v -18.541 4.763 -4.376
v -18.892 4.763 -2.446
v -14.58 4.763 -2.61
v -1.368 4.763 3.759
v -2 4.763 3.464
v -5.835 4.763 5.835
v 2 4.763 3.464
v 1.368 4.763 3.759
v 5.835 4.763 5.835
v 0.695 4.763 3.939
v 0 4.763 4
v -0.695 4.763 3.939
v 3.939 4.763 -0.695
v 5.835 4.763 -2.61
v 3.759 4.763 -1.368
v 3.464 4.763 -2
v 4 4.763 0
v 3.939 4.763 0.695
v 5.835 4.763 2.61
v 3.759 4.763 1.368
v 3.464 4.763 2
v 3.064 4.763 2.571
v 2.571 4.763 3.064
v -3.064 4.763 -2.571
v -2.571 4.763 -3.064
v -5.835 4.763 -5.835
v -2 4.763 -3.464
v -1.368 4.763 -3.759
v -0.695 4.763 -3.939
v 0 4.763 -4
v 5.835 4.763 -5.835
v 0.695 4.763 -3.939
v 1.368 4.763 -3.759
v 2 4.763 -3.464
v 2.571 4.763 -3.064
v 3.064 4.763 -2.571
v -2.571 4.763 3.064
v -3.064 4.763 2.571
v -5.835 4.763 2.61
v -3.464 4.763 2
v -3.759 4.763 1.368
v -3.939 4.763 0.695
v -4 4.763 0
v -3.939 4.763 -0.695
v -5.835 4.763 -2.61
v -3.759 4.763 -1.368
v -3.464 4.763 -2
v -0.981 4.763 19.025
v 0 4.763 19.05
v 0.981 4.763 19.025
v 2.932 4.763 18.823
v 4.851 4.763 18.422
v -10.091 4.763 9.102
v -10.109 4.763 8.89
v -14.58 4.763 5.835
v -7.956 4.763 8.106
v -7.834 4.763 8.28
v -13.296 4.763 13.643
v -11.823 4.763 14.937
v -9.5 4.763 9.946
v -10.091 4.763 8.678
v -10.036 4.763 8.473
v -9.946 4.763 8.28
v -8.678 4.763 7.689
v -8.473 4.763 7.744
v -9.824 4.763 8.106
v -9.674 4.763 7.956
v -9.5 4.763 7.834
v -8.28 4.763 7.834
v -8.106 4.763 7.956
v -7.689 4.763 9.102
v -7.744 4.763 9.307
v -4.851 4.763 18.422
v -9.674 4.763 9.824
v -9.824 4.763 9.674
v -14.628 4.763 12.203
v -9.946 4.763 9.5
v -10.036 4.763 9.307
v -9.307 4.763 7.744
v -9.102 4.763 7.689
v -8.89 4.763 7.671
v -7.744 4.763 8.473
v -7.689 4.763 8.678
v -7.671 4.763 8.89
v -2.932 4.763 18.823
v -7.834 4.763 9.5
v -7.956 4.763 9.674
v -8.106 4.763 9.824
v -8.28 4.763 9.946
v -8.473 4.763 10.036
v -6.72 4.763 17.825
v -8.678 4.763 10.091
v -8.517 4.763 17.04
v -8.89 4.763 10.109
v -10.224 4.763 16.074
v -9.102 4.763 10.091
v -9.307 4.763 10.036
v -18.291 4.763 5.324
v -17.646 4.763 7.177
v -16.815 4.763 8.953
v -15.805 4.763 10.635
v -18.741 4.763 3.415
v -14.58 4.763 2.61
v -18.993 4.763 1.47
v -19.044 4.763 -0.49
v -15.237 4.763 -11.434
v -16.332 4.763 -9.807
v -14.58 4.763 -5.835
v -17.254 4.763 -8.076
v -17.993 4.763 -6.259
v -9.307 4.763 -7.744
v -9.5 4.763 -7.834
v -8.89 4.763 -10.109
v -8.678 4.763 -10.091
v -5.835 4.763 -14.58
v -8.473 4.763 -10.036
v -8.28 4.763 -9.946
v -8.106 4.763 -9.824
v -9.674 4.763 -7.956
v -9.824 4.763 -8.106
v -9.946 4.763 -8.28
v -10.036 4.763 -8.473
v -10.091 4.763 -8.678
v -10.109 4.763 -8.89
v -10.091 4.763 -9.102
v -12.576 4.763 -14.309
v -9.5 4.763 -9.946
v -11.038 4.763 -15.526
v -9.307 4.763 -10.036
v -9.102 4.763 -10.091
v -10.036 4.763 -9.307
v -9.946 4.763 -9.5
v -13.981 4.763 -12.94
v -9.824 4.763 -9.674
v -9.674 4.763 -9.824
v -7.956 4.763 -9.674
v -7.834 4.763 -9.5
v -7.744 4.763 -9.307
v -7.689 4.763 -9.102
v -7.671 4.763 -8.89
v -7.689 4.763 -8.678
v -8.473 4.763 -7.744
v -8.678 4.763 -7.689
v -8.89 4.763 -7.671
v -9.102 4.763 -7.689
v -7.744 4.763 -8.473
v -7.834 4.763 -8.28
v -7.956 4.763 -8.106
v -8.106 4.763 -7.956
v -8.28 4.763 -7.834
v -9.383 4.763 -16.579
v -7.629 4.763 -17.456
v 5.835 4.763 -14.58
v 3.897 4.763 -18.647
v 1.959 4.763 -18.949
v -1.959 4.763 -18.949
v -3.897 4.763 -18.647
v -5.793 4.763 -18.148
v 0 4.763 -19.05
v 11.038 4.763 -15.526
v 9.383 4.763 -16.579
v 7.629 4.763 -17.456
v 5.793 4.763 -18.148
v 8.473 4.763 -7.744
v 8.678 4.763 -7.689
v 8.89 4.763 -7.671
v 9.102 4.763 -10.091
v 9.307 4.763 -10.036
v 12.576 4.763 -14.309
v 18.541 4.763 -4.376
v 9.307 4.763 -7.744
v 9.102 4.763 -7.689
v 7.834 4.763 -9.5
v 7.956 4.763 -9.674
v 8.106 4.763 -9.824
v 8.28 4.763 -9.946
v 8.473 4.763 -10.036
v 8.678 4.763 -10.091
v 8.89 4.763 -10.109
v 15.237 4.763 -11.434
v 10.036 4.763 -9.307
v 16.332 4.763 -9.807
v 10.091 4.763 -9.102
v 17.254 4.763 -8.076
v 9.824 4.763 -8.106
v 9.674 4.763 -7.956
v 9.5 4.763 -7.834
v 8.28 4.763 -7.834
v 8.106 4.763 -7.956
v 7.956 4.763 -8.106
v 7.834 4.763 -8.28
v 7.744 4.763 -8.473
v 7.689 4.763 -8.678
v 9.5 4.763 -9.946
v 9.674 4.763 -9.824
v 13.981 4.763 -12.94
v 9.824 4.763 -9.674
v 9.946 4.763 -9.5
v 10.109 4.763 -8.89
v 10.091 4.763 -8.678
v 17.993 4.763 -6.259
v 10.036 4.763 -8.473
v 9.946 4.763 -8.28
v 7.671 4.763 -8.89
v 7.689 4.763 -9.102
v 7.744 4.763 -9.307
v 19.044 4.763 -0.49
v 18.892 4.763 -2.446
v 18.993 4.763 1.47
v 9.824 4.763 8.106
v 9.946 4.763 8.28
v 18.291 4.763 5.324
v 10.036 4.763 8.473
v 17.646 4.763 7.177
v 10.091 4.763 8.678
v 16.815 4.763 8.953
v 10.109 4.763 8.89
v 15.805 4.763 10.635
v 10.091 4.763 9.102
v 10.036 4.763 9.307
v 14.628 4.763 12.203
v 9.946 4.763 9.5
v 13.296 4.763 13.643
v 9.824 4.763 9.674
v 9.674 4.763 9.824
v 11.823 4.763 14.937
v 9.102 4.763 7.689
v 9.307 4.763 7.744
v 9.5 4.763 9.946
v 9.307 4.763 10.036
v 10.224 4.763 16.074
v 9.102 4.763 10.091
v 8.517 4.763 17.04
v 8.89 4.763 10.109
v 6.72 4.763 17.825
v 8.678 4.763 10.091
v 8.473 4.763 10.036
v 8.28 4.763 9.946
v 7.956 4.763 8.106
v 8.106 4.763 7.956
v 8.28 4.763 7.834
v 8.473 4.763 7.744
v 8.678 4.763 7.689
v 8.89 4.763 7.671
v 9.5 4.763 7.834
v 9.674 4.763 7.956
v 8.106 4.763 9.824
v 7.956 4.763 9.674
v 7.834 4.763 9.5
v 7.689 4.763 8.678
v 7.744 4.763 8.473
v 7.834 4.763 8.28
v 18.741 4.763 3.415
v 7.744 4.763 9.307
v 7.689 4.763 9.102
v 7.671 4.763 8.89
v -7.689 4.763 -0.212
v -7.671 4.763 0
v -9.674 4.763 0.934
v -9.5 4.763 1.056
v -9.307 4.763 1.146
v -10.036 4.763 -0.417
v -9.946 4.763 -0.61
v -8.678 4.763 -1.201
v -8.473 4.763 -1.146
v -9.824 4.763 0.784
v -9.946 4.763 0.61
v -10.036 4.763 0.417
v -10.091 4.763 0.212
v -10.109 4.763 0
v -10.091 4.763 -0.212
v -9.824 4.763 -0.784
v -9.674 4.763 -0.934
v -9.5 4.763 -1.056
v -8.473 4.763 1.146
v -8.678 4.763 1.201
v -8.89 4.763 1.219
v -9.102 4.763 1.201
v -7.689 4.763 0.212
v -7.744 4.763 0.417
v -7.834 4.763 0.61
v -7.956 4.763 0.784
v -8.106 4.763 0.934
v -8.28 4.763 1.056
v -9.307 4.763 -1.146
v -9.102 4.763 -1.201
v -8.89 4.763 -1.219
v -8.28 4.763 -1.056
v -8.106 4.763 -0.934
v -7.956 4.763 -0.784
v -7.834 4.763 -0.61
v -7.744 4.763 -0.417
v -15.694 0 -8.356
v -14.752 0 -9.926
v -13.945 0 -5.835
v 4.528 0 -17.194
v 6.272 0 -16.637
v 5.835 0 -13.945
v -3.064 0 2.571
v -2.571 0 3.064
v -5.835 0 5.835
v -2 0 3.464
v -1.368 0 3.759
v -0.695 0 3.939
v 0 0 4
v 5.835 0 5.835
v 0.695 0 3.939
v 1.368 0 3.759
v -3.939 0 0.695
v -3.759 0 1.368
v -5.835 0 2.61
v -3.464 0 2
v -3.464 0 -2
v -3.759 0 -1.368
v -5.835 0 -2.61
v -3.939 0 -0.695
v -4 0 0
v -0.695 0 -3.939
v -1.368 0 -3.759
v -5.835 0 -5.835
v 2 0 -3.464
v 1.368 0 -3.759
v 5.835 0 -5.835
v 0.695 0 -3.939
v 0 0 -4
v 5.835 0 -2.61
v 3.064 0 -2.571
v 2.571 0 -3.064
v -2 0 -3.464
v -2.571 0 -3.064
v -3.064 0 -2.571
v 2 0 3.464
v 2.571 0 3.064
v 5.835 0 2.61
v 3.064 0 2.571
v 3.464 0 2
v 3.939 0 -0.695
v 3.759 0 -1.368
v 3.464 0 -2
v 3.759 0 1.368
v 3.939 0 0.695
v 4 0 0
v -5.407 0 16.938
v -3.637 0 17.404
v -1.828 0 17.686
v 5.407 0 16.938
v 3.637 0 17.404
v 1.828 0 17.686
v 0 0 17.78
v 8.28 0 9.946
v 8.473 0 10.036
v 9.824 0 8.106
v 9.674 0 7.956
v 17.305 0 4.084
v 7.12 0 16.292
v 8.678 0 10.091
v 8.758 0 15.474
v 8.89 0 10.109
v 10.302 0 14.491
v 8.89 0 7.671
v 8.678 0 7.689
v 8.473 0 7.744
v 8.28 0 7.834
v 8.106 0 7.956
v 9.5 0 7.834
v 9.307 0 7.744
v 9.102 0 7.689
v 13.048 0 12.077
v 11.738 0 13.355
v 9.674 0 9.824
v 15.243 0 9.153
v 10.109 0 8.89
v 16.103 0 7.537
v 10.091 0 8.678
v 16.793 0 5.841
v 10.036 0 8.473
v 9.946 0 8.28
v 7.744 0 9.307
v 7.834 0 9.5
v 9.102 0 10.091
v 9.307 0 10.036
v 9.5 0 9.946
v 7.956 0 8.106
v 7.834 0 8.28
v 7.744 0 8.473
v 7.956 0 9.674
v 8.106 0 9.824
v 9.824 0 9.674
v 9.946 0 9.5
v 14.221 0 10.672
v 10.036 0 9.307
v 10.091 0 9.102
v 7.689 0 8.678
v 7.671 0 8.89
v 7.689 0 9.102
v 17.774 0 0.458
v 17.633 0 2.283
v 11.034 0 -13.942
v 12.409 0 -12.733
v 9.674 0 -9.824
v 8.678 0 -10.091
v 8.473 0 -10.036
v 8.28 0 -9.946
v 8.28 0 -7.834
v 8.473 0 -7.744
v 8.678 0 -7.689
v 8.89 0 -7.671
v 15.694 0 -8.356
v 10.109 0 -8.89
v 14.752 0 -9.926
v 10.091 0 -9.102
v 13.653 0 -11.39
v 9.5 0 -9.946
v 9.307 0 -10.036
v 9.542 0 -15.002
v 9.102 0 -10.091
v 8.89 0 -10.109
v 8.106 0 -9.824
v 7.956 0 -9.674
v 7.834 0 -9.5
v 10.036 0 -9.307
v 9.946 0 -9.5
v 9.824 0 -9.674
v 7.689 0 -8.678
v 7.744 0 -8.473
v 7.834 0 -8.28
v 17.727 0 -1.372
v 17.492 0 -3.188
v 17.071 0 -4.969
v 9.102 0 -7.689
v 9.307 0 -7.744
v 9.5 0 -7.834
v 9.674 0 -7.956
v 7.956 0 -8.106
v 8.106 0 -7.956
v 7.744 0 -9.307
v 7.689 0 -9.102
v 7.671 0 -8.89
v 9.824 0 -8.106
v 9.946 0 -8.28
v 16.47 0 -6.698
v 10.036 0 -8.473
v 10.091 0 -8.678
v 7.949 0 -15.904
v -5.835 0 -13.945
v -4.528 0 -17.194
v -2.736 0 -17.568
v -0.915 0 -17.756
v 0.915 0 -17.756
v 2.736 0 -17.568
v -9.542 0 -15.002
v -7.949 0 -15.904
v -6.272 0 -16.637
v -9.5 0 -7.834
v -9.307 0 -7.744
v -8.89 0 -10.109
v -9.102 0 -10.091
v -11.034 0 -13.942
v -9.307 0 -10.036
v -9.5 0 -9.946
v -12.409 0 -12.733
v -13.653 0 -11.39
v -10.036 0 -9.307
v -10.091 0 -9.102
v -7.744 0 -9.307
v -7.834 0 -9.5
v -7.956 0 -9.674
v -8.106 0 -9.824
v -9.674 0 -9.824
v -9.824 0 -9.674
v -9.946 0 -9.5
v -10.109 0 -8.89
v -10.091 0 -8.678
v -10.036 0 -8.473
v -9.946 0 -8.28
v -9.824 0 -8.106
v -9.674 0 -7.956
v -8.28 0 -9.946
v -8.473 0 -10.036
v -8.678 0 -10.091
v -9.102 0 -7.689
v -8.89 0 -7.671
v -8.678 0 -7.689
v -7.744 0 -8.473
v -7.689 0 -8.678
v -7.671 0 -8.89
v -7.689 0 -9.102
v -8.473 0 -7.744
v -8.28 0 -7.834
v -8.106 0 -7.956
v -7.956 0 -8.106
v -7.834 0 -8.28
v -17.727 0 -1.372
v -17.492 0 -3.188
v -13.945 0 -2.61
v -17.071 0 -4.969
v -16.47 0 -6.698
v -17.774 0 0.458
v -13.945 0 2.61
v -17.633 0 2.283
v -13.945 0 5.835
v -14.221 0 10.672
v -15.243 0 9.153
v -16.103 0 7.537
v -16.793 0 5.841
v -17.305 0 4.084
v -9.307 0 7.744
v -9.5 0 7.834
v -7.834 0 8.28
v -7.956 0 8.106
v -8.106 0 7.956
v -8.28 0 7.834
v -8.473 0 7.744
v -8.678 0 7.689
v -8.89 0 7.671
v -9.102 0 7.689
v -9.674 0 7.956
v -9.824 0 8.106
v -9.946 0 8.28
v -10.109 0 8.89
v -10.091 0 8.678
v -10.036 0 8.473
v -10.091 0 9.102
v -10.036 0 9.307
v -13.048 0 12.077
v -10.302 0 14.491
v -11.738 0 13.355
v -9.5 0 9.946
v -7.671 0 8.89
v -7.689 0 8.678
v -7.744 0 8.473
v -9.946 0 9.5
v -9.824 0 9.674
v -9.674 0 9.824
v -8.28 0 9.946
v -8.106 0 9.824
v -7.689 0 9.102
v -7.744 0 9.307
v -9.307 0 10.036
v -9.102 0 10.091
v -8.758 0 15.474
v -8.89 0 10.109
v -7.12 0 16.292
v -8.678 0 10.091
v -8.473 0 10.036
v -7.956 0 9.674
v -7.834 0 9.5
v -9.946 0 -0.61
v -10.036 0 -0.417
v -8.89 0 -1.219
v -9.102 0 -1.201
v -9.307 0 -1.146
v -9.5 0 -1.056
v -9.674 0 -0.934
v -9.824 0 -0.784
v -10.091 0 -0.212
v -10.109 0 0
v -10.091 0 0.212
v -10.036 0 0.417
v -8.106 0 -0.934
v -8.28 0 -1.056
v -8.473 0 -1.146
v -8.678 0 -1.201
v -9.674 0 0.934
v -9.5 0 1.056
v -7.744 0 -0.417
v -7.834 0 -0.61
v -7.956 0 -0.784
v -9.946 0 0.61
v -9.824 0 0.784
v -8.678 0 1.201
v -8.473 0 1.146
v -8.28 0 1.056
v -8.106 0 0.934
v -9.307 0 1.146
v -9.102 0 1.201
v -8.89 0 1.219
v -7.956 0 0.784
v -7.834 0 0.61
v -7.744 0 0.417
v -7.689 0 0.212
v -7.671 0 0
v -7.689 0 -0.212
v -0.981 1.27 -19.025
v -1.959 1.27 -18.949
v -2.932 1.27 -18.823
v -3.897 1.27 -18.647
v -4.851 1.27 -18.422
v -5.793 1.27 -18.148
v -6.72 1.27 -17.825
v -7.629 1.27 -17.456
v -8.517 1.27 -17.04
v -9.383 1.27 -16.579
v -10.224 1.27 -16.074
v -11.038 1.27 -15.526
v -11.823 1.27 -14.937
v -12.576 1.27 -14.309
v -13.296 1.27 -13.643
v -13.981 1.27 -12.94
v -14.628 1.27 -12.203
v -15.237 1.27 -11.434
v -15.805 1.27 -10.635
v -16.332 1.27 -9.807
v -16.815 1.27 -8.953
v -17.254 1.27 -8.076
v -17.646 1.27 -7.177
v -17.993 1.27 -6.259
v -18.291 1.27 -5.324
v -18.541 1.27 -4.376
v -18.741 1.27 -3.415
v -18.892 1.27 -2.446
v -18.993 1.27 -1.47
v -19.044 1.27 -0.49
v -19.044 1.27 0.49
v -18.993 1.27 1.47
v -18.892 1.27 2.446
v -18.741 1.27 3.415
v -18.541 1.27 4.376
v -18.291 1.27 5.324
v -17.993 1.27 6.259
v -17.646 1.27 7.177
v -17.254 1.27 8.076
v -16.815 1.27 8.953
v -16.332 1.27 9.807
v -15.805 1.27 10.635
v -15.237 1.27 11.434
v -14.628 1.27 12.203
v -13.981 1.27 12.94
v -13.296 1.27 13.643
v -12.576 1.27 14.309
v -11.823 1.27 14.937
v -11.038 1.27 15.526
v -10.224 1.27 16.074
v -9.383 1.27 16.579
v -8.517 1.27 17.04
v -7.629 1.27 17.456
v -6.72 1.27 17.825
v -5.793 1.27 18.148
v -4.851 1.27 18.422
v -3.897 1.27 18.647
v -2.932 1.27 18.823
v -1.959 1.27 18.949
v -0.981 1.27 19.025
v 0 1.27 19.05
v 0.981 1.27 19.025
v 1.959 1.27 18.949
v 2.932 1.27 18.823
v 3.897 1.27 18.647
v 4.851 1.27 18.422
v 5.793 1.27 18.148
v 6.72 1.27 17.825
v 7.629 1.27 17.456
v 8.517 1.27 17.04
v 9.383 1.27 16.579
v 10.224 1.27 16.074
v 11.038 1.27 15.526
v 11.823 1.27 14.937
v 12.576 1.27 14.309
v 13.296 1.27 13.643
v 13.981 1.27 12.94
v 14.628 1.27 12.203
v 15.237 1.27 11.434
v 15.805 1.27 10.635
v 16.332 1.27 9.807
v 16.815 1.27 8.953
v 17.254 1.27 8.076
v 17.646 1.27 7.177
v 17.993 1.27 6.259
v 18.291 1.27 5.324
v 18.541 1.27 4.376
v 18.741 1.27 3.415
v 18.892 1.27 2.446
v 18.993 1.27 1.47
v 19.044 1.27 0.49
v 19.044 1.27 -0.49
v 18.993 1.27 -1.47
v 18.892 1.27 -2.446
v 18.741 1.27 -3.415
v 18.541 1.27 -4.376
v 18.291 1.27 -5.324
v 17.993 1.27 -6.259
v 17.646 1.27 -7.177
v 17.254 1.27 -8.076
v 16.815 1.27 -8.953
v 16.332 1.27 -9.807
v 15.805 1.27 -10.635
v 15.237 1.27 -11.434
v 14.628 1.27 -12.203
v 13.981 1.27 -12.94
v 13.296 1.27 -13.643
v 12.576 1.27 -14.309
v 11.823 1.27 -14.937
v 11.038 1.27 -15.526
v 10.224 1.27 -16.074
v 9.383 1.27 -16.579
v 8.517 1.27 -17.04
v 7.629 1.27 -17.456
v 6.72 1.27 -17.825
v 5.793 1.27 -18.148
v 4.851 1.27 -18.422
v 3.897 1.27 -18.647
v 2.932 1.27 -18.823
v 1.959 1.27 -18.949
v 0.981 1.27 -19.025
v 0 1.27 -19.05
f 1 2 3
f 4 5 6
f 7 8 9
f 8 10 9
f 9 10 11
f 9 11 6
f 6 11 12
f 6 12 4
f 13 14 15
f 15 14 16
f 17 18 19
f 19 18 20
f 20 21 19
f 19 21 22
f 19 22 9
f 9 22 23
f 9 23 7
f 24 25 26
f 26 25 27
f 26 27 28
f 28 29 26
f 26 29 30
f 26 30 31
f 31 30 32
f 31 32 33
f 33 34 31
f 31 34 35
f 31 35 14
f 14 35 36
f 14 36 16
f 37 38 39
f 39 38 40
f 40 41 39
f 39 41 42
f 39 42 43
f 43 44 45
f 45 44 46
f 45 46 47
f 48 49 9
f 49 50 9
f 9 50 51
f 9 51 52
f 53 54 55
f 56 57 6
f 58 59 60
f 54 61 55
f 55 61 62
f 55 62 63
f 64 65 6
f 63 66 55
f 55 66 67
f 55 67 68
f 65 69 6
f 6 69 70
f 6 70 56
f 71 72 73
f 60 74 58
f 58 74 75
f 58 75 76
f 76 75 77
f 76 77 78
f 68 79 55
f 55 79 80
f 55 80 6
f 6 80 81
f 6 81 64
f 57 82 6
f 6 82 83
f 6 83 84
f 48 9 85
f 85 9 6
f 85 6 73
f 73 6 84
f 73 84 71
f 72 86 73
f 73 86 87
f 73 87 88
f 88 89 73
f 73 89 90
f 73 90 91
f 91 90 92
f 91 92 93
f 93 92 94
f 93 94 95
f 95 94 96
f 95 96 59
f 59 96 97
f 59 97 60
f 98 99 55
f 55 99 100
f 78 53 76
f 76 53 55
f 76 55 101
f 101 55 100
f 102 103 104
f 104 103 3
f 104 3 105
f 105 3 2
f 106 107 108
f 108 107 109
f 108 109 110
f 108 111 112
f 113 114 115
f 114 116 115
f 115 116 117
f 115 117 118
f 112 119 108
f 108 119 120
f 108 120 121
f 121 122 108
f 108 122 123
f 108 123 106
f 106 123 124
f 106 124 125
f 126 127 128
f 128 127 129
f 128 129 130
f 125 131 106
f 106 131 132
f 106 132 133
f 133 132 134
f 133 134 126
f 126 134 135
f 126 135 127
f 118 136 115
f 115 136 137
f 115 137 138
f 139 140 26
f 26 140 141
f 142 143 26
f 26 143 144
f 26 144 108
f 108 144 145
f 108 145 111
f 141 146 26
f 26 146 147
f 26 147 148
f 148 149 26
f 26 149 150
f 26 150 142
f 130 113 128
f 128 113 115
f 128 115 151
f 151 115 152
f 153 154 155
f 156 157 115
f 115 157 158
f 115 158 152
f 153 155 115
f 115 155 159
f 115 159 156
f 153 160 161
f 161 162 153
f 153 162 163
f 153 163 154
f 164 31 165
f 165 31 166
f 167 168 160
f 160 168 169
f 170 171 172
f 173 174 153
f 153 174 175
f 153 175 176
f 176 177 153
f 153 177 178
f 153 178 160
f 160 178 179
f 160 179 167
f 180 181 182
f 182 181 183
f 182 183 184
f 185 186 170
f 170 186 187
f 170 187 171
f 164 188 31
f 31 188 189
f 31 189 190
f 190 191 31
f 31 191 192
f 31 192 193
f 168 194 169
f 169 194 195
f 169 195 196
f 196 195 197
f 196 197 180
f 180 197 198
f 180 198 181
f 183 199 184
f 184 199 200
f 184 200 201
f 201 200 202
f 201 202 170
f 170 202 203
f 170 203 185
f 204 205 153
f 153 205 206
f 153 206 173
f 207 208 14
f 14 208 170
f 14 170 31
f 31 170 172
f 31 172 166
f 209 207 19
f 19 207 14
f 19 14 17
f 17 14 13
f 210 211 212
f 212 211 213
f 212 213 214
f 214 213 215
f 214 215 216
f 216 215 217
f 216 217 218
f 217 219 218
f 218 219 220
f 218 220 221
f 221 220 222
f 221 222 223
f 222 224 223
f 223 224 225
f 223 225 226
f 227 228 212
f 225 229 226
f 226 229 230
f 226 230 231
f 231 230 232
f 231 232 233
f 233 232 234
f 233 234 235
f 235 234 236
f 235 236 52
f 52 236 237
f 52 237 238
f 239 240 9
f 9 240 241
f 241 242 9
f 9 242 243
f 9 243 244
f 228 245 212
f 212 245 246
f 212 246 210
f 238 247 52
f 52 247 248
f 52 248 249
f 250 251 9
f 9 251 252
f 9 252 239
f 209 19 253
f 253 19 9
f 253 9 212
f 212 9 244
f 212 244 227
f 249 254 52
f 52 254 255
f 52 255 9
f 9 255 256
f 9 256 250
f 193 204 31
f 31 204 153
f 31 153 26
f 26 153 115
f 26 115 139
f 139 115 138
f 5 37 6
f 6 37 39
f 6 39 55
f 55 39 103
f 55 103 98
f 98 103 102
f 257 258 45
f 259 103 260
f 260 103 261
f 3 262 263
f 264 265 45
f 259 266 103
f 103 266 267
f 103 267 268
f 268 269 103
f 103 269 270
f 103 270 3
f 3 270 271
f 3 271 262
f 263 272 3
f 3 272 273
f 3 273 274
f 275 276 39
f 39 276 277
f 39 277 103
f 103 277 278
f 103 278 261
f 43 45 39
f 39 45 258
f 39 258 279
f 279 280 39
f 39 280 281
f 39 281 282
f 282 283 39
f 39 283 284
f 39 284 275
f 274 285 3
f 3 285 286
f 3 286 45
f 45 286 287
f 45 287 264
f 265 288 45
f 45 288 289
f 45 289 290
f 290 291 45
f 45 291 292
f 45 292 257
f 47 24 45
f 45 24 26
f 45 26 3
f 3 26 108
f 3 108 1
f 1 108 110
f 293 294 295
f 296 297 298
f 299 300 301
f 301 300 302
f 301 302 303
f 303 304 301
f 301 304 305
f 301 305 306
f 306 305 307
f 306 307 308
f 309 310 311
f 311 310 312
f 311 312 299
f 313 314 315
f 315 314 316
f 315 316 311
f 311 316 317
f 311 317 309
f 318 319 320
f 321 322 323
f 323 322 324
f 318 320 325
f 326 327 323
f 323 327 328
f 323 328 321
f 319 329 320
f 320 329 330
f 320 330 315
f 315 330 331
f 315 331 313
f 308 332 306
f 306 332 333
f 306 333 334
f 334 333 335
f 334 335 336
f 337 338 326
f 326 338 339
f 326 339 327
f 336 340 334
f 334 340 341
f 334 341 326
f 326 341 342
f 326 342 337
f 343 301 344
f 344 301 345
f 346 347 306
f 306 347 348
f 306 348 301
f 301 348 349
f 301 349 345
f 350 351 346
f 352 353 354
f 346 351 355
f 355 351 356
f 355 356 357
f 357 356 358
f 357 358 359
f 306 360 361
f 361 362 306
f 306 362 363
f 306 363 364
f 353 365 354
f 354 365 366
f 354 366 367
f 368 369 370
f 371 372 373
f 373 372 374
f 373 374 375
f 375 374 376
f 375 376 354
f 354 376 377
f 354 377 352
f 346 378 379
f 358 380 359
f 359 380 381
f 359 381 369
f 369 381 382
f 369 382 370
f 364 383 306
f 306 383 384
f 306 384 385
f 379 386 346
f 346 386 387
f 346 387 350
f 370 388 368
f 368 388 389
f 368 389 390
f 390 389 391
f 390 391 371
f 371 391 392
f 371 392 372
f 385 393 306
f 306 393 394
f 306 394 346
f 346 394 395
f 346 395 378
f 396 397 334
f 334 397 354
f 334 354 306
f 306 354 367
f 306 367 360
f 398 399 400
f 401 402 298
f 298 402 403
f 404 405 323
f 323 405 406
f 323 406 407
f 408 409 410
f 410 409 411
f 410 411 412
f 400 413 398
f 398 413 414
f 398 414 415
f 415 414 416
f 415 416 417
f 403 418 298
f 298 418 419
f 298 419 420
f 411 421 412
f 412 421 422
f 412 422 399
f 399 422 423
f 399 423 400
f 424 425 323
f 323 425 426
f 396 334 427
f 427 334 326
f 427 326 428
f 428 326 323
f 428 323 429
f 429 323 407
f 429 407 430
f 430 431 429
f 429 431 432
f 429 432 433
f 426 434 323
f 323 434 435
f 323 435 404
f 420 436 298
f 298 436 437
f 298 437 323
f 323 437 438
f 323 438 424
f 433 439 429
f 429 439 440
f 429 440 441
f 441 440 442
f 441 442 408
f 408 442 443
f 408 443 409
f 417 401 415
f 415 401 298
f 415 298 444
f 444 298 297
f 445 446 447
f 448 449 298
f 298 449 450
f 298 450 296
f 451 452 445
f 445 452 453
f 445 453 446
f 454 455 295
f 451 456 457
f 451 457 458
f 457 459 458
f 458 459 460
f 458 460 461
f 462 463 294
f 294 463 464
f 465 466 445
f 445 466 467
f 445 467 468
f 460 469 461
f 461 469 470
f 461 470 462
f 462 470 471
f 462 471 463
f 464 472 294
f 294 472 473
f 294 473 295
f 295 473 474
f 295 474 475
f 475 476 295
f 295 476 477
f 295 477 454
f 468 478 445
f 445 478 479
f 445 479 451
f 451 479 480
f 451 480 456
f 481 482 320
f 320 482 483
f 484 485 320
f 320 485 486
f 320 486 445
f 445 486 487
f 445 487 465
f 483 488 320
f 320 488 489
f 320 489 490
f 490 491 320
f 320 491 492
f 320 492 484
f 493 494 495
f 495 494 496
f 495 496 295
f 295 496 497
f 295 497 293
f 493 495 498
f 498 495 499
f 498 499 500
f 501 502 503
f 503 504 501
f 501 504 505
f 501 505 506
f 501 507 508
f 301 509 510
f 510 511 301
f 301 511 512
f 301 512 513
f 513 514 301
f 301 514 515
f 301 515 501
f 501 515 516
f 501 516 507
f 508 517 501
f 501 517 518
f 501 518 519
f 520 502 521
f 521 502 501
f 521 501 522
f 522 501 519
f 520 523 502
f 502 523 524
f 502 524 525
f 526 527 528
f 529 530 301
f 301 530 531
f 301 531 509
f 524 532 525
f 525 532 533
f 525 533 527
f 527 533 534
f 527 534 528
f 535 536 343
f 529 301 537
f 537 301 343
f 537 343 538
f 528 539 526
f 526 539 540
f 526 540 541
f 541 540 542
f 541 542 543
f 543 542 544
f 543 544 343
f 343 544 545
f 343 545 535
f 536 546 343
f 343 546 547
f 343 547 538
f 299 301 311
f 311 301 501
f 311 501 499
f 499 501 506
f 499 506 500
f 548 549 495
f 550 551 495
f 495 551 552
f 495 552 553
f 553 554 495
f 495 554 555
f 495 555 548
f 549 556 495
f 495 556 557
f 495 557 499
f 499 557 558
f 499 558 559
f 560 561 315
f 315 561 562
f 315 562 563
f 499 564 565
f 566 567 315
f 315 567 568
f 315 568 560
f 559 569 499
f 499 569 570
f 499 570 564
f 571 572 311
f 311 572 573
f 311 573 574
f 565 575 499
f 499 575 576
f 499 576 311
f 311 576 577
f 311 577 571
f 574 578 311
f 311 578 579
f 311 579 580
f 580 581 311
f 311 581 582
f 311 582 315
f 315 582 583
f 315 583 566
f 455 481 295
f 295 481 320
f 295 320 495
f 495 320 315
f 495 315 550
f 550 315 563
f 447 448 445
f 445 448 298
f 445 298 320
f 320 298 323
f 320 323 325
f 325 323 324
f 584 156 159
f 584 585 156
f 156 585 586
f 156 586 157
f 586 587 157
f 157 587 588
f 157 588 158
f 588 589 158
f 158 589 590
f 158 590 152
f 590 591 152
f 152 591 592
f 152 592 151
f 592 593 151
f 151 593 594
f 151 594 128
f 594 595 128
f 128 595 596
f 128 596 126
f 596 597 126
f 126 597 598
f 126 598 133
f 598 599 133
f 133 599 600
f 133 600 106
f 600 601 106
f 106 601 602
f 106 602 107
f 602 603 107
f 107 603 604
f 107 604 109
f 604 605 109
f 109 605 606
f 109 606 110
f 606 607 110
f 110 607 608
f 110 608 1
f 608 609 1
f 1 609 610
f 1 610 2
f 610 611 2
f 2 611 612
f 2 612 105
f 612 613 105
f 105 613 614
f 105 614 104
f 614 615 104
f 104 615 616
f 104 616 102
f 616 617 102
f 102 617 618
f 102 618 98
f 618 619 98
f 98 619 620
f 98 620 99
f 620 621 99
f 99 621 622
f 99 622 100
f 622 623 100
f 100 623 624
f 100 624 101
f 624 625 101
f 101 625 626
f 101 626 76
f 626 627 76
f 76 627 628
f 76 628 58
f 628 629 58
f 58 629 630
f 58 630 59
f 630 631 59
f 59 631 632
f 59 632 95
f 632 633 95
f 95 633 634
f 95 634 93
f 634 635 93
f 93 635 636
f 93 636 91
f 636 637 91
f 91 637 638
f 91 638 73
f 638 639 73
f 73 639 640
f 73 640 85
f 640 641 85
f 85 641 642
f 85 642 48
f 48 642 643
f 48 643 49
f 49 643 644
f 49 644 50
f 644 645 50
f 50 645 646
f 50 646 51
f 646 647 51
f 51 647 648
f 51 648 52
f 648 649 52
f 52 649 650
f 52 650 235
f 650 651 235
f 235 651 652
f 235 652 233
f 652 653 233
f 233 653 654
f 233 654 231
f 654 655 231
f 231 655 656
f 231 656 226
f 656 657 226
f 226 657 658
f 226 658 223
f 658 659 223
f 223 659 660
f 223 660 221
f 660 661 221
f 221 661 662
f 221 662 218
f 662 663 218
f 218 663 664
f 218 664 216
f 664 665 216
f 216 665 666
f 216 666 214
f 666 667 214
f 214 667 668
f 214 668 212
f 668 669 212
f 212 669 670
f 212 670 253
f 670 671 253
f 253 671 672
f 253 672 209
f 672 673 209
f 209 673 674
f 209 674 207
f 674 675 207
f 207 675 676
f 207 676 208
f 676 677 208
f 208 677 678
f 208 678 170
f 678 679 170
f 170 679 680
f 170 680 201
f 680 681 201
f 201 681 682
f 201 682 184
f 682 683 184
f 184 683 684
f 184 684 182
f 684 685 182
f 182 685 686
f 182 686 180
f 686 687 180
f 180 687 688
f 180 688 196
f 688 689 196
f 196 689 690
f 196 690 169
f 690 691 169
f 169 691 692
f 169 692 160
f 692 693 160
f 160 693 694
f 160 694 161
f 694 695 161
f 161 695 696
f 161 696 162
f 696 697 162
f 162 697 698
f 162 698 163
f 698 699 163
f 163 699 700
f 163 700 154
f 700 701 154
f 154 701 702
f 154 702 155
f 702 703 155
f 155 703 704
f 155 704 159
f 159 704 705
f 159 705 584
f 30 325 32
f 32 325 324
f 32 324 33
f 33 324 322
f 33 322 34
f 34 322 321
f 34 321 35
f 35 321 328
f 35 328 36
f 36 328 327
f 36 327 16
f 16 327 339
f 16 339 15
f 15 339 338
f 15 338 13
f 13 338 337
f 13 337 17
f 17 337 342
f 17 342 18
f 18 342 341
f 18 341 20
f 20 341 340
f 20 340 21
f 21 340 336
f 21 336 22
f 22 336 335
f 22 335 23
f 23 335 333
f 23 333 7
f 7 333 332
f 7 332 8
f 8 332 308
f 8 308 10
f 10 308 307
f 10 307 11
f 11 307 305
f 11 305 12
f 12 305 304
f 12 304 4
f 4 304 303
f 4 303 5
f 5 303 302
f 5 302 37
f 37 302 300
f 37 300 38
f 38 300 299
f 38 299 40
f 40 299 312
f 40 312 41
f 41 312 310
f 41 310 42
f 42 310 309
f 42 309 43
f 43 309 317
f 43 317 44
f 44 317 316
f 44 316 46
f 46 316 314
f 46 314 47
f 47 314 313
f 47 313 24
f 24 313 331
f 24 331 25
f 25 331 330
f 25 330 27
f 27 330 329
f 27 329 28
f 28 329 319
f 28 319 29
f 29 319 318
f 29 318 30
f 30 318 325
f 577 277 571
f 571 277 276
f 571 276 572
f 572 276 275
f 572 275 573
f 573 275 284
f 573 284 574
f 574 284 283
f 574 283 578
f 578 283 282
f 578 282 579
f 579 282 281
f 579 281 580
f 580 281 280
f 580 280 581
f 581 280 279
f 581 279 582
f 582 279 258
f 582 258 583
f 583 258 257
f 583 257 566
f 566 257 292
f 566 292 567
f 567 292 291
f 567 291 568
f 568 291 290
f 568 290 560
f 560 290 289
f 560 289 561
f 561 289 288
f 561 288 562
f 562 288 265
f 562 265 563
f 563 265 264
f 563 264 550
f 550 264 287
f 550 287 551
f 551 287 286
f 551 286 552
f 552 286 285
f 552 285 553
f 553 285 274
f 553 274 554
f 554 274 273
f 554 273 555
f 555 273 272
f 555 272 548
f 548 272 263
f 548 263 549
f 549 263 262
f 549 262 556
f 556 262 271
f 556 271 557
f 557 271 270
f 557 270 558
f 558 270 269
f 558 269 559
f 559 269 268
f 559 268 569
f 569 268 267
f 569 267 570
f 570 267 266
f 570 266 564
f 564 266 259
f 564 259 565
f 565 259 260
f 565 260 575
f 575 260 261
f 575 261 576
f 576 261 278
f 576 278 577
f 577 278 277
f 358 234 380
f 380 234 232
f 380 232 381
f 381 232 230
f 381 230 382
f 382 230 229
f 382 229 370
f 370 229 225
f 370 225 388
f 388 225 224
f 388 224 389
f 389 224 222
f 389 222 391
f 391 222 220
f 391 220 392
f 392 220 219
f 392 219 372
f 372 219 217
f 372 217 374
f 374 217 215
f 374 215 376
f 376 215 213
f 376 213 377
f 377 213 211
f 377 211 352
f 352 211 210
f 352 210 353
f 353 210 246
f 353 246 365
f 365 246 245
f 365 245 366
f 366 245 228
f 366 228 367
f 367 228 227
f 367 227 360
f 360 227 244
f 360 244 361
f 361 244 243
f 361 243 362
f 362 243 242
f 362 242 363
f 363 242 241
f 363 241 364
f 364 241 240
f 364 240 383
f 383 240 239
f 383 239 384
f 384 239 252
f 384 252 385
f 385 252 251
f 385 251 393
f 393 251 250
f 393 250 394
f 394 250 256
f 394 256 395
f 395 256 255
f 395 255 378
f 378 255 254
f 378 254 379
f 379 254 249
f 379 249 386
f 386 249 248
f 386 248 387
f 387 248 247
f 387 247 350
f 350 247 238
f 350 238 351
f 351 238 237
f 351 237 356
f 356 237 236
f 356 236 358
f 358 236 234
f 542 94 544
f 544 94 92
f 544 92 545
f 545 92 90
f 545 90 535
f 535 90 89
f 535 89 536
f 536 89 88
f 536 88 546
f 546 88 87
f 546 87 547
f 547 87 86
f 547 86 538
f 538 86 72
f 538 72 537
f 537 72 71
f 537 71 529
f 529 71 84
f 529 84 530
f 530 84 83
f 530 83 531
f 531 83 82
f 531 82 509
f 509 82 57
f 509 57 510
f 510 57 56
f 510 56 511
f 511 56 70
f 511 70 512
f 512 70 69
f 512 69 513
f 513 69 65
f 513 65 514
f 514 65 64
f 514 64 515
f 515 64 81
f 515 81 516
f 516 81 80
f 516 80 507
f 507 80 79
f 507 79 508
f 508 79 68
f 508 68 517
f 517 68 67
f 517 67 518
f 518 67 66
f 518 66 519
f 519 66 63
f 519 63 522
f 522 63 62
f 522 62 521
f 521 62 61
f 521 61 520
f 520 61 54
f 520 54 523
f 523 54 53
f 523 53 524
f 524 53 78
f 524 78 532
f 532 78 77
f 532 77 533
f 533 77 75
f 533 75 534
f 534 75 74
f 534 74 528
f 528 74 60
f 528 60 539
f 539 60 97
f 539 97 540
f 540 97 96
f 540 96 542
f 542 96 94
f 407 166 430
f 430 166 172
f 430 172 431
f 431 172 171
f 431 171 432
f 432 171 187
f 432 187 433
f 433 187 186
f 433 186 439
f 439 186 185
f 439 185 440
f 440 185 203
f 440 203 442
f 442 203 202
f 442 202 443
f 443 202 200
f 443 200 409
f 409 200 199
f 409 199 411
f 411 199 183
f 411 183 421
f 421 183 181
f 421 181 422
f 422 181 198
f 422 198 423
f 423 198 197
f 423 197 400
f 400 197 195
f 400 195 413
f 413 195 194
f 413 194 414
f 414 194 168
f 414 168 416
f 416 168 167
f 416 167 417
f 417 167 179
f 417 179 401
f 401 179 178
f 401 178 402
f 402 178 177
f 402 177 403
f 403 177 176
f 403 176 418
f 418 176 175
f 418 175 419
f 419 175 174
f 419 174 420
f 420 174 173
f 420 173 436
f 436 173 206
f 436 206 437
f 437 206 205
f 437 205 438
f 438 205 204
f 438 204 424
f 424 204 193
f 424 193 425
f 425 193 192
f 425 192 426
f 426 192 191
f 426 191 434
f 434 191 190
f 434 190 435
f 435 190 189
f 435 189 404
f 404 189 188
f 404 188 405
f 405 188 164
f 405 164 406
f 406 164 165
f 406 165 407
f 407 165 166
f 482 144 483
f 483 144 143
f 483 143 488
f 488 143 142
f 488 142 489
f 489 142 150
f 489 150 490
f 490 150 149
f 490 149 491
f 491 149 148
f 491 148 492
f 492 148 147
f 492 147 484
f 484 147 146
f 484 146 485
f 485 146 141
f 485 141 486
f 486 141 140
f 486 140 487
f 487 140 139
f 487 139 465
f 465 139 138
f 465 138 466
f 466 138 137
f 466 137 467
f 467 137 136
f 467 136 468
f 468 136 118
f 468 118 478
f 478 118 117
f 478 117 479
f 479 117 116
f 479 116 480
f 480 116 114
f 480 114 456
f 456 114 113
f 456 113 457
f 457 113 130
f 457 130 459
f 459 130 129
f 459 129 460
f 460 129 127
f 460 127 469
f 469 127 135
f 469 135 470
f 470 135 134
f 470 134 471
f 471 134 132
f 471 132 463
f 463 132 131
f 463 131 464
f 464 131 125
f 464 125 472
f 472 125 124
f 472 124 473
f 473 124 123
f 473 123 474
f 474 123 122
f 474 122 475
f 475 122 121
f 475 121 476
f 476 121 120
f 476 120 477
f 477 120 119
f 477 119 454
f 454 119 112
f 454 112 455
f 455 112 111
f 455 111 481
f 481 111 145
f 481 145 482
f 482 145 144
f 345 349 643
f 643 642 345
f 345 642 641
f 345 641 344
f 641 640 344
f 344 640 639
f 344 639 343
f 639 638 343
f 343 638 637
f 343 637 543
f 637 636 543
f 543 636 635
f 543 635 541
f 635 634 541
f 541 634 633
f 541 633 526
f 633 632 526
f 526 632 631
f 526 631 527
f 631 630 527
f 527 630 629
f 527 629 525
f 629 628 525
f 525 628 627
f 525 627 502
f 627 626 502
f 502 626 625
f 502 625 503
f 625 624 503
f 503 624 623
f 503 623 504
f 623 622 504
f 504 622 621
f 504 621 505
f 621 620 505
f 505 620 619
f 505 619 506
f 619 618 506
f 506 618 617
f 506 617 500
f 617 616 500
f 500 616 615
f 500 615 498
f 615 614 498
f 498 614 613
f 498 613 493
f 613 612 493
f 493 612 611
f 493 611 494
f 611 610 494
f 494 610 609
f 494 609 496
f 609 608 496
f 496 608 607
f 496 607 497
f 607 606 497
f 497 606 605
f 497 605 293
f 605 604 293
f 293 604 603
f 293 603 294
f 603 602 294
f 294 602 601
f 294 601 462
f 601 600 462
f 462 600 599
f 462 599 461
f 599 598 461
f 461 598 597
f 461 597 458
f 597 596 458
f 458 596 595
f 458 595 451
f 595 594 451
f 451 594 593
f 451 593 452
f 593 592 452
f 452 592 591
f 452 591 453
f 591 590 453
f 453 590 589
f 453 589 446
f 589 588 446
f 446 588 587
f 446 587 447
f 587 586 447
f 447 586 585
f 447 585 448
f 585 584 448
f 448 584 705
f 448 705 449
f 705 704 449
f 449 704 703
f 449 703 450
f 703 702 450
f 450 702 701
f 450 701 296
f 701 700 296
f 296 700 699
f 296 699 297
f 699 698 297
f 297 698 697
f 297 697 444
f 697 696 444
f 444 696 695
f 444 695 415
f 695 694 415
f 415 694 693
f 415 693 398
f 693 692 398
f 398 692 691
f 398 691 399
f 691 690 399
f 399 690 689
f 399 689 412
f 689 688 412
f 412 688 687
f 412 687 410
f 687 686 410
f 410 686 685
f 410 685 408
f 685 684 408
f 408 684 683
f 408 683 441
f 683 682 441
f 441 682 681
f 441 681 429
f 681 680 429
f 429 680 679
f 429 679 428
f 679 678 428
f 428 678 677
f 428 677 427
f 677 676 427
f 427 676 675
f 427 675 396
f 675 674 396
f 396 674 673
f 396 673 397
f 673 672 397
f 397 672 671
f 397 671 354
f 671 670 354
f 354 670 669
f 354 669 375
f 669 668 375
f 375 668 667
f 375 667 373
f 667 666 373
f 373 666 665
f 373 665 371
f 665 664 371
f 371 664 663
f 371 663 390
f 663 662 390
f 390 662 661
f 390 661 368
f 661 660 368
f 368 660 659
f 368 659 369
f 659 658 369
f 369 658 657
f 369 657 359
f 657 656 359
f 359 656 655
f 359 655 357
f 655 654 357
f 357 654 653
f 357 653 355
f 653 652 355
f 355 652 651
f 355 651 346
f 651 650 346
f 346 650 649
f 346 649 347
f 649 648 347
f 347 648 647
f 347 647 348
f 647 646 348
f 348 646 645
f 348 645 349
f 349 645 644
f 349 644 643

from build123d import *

# Parameters (mm, degrees)
SKETCH1_R                 = 19.05
SKETCH1_R_2               = 4
BOSS_EXTRUDE1_DEPTH       = 4.7625
F_2_CLEARANCE_HOLE1_D     = 2.4384
F_2_CLEARANCE_HOLE1_DEPTH = 4.7625
CHAMFER1_SIZE             = 1.27


with BuildPart() as part:
    # Sketch1 → Boss-Extrude1 (new body)
    with BuildSketch(Plane(origin=(0, 0, 0), x_dir=(1, 0, 0), z_dir=(0, 1, 0))):
        Circle(SKETCH1_R)
        Circle(SKETCH1_R_2, mode=Mode.SUBTRACT)
    extrude(amount=BOSS_EXTRUDE1_DEPTH)

    # #2 Clearance Hole1
    with Locations(Plane(origin=(0, 4.7625, 0), x_dir=(1, 0, 0), z_dir=(0, 1, 0))):
        with Locations((-8.89, 8.89), (8.89, 8.89), (-8.89, -8.89), (8.89, -8.89), (-8.89, 0)):
            Hole(F_2_CLEARANCE_HOLE1_D / 2, depth=F_2_CLEARANCE_HOLE1_DEPTH)

    # Chamfer1
    chamfer1_edges = [part.edges().sort_by_distance(p)[0] for p in [
        (-19.05, 0, 0),
    ]]
    chamfer(chamfer1_edges, length=CHAMFER1_SIZE)


solid = part.part
